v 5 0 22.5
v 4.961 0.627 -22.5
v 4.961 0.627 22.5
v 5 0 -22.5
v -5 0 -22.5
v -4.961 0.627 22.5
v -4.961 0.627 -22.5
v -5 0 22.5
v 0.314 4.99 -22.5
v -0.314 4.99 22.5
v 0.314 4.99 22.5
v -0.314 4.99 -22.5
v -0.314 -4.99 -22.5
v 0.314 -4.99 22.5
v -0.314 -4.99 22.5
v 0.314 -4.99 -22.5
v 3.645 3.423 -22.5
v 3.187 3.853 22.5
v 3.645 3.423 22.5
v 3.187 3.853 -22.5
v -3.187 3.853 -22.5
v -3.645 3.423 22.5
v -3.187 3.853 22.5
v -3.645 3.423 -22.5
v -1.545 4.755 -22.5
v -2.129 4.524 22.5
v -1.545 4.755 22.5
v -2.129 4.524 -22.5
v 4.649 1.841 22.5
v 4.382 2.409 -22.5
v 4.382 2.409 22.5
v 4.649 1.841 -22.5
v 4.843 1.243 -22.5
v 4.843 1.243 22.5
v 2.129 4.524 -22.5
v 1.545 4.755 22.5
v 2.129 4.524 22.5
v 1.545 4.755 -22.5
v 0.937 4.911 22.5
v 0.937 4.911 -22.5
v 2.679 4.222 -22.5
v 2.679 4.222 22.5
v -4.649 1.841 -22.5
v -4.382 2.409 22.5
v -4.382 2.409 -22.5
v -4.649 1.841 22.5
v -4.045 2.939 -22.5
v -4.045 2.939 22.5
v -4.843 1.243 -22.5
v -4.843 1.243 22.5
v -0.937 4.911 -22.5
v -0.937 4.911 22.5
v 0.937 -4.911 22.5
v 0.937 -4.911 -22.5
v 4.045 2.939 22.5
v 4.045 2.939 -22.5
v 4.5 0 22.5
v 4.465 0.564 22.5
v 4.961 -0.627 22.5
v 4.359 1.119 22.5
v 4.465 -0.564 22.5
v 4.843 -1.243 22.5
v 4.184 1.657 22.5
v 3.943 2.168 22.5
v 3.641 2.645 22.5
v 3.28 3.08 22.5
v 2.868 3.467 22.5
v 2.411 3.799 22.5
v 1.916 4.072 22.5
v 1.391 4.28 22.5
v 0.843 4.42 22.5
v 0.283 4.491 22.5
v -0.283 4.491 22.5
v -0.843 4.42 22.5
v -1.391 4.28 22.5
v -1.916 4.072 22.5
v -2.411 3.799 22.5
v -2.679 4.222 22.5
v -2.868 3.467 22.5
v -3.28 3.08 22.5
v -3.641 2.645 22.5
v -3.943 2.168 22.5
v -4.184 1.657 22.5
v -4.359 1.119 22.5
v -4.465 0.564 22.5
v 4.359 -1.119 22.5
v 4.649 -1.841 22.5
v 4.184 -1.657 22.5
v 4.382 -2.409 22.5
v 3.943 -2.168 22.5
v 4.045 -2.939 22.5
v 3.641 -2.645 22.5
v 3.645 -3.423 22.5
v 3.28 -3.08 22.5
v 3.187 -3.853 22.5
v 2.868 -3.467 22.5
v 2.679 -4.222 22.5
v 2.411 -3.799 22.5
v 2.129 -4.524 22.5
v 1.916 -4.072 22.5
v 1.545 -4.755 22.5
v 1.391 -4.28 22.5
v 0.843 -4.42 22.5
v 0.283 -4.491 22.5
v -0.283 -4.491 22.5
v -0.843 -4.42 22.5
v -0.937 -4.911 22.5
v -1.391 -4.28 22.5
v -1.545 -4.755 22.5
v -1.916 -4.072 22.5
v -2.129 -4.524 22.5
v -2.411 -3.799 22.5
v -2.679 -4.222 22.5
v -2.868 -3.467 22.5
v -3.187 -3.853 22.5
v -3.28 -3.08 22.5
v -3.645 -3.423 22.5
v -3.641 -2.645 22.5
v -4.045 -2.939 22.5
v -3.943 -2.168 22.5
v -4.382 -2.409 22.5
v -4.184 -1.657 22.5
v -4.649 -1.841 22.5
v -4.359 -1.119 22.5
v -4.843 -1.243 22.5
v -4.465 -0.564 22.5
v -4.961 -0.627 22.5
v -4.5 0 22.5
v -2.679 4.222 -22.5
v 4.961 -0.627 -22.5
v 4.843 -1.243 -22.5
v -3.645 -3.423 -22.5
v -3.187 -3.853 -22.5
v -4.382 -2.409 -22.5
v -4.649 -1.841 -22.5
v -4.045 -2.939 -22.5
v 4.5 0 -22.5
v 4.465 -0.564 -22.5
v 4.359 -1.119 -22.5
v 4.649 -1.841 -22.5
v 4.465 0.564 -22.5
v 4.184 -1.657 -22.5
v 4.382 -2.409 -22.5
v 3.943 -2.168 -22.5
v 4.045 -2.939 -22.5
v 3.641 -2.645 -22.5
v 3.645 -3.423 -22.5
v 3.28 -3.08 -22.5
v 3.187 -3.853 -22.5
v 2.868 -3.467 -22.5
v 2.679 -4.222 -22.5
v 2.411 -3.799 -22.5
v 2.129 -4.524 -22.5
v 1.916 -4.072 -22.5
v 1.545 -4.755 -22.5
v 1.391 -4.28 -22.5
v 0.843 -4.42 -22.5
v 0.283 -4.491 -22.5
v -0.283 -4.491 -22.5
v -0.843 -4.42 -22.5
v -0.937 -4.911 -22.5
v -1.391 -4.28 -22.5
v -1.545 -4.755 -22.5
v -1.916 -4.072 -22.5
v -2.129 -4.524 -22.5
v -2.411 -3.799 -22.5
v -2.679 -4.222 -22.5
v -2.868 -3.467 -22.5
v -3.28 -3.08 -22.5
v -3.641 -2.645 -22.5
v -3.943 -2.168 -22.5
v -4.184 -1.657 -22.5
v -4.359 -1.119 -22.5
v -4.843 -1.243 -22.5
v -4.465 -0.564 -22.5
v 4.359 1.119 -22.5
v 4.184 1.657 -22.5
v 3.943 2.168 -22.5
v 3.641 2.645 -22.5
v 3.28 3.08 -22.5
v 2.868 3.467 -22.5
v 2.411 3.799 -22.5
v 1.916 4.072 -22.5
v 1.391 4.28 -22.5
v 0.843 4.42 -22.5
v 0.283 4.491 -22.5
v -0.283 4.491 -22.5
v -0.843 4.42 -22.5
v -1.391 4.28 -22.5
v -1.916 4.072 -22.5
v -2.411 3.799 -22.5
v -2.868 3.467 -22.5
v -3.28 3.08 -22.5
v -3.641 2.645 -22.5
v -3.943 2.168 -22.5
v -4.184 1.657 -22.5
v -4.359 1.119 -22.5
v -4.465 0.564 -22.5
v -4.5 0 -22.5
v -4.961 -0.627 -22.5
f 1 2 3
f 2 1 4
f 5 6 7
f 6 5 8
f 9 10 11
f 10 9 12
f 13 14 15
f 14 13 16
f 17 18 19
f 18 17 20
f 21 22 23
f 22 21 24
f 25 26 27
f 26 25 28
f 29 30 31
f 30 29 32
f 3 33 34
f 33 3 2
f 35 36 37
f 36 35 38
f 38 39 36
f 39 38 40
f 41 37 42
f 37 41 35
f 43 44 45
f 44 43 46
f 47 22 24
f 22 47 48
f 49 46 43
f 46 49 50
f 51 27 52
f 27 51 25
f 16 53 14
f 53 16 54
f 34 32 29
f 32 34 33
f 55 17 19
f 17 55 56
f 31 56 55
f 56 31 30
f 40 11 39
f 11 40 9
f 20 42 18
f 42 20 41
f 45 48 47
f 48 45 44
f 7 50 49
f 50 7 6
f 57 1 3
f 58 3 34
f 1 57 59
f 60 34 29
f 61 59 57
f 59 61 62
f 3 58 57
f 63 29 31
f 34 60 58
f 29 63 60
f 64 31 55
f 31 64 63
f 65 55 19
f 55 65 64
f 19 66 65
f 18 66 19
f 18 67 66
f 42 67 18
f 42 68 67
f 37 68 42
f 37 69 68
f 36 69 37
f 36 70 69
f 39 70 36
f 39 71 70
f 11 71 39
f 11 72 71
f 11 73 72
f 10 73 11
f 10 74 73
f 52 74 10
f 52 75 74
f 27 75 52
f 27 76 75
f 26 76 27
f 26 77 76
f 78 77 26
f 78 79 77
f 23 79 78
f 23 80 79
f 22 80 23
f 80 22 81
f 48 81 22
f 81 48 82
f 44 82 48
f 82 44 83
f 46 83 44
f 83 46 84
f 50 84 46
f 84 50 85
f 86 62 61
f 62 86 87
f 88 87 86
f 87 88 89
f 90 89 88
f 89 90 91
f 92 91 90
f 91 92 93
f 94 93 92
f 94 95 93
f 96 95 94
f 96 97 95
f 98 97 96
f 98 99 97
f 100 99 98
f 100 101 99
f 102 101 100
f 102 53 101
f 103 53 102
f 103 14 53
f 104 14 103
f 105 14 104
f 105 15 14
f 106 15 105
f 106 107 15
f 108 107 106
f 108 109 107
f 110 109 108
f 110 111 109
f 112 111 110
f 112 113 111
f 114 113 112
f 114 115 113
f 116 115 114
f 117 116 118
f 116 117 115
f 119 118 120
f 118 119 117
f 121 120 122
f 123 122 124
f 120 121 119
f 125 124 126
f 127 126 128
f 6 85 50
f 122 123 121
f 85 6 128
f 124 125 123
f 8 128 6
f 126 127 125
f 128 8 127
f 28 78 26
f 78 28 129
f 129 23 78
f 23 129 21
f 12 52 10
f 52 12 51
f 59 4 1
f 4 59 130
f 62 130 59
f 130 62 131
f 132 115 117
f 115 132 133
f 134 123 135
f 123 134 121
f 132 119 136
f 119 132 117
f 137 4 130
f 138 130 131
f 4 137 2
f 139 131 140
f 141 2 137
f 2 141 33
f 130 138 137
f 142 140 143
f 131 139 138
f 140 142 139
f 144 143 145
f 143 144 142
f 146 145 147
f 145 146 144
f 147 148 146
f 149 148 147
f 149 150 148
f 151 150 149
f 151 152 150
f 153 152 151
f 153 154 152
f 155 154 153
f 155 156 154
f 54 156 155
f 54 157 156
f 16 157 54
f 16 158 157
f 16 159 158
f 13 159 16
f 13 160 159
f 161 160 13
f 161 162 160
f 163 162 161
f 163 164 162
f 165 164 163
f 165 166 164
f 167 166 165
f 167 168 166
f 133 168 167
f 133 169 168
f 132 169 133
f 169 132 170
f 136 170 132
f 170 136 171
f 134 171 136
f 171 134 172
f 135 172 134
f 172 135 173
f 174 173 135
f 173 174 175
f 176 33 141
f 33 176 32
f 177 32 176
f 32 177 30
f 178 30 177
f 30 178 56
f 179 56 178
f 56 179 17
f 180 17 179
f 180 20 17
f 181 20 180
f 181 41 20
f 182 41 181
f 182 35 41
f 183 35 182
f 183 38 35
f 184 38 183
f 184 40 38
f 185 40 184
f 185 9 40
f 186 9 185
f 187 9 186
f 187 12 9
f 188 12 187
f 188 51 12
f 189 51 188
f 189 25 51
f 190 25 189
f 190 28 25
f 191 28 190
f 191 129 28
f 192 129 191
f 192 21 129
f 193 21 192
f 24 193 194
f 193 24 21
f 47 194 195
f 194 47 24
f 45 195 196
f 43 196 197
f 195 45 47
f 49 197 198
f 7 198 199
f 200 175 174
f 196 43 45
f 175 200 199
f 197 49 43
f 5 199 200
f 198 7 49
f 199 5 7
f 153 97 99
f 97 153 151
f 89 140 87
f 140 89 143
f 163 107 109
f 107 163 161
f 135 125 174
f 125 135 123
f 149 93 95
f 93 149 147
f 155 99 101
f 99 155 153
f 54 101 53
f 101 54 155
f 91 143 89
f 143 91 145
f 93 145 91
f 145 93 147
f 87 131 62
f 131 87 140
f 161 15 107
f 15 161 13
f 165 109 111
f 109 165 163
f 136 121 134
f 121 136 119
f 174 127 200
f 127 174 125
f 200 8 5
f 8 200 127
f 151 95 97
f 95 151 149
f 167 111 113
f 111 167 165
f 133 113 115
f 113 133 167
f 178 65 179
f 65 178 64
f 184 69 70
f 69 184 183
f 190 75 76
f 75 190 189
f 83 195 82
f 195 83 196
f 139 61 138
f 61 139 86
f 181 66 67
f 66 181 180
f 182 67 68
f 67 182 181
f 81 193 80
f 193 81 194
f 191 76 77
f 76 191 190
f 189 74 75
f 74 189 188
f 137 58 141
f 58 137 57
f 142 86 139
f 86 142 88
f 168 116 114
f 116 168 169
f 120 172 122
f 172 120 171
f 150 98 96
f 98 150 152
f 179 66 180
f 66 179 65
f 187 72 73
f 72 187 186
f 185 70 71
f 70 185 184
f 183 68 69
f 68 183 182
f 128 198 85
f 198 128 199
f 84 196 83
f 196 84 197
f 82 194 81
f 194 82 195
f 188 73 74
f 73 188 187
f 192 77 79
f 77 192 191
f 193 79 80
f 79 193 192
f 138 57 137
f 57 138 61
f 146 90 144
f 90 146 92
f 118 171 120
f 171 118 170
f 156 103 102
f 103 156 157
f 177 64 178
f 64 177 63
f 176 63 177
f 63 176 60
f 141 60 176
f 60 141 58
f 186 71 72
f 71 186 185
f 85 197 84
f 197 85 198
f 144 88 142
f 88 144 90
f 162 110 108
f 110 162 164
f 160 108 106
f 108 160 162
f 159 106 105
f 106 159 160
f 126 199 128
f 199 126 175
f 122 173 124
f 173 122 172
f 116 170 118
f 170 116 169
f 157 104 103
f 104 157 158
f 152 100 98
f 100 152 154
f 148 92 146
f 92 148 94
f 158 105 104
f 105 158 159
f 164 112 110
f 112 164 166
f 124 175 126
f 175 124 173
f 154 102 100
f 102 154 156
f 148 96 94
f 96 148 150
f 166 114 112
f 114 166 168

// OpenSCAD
$fn = 50;


difference() {
	union() {
		translate(v = [0, 0, -22.5000000000]) {
			cylinder(h = 45, r = 5.0000000000);
		}
	}
	union() {
		translate(v = [0, 0, -100.0000000000]) {
			cylinder(h = 200, r = 4.5000000000);
		}
	}
}
